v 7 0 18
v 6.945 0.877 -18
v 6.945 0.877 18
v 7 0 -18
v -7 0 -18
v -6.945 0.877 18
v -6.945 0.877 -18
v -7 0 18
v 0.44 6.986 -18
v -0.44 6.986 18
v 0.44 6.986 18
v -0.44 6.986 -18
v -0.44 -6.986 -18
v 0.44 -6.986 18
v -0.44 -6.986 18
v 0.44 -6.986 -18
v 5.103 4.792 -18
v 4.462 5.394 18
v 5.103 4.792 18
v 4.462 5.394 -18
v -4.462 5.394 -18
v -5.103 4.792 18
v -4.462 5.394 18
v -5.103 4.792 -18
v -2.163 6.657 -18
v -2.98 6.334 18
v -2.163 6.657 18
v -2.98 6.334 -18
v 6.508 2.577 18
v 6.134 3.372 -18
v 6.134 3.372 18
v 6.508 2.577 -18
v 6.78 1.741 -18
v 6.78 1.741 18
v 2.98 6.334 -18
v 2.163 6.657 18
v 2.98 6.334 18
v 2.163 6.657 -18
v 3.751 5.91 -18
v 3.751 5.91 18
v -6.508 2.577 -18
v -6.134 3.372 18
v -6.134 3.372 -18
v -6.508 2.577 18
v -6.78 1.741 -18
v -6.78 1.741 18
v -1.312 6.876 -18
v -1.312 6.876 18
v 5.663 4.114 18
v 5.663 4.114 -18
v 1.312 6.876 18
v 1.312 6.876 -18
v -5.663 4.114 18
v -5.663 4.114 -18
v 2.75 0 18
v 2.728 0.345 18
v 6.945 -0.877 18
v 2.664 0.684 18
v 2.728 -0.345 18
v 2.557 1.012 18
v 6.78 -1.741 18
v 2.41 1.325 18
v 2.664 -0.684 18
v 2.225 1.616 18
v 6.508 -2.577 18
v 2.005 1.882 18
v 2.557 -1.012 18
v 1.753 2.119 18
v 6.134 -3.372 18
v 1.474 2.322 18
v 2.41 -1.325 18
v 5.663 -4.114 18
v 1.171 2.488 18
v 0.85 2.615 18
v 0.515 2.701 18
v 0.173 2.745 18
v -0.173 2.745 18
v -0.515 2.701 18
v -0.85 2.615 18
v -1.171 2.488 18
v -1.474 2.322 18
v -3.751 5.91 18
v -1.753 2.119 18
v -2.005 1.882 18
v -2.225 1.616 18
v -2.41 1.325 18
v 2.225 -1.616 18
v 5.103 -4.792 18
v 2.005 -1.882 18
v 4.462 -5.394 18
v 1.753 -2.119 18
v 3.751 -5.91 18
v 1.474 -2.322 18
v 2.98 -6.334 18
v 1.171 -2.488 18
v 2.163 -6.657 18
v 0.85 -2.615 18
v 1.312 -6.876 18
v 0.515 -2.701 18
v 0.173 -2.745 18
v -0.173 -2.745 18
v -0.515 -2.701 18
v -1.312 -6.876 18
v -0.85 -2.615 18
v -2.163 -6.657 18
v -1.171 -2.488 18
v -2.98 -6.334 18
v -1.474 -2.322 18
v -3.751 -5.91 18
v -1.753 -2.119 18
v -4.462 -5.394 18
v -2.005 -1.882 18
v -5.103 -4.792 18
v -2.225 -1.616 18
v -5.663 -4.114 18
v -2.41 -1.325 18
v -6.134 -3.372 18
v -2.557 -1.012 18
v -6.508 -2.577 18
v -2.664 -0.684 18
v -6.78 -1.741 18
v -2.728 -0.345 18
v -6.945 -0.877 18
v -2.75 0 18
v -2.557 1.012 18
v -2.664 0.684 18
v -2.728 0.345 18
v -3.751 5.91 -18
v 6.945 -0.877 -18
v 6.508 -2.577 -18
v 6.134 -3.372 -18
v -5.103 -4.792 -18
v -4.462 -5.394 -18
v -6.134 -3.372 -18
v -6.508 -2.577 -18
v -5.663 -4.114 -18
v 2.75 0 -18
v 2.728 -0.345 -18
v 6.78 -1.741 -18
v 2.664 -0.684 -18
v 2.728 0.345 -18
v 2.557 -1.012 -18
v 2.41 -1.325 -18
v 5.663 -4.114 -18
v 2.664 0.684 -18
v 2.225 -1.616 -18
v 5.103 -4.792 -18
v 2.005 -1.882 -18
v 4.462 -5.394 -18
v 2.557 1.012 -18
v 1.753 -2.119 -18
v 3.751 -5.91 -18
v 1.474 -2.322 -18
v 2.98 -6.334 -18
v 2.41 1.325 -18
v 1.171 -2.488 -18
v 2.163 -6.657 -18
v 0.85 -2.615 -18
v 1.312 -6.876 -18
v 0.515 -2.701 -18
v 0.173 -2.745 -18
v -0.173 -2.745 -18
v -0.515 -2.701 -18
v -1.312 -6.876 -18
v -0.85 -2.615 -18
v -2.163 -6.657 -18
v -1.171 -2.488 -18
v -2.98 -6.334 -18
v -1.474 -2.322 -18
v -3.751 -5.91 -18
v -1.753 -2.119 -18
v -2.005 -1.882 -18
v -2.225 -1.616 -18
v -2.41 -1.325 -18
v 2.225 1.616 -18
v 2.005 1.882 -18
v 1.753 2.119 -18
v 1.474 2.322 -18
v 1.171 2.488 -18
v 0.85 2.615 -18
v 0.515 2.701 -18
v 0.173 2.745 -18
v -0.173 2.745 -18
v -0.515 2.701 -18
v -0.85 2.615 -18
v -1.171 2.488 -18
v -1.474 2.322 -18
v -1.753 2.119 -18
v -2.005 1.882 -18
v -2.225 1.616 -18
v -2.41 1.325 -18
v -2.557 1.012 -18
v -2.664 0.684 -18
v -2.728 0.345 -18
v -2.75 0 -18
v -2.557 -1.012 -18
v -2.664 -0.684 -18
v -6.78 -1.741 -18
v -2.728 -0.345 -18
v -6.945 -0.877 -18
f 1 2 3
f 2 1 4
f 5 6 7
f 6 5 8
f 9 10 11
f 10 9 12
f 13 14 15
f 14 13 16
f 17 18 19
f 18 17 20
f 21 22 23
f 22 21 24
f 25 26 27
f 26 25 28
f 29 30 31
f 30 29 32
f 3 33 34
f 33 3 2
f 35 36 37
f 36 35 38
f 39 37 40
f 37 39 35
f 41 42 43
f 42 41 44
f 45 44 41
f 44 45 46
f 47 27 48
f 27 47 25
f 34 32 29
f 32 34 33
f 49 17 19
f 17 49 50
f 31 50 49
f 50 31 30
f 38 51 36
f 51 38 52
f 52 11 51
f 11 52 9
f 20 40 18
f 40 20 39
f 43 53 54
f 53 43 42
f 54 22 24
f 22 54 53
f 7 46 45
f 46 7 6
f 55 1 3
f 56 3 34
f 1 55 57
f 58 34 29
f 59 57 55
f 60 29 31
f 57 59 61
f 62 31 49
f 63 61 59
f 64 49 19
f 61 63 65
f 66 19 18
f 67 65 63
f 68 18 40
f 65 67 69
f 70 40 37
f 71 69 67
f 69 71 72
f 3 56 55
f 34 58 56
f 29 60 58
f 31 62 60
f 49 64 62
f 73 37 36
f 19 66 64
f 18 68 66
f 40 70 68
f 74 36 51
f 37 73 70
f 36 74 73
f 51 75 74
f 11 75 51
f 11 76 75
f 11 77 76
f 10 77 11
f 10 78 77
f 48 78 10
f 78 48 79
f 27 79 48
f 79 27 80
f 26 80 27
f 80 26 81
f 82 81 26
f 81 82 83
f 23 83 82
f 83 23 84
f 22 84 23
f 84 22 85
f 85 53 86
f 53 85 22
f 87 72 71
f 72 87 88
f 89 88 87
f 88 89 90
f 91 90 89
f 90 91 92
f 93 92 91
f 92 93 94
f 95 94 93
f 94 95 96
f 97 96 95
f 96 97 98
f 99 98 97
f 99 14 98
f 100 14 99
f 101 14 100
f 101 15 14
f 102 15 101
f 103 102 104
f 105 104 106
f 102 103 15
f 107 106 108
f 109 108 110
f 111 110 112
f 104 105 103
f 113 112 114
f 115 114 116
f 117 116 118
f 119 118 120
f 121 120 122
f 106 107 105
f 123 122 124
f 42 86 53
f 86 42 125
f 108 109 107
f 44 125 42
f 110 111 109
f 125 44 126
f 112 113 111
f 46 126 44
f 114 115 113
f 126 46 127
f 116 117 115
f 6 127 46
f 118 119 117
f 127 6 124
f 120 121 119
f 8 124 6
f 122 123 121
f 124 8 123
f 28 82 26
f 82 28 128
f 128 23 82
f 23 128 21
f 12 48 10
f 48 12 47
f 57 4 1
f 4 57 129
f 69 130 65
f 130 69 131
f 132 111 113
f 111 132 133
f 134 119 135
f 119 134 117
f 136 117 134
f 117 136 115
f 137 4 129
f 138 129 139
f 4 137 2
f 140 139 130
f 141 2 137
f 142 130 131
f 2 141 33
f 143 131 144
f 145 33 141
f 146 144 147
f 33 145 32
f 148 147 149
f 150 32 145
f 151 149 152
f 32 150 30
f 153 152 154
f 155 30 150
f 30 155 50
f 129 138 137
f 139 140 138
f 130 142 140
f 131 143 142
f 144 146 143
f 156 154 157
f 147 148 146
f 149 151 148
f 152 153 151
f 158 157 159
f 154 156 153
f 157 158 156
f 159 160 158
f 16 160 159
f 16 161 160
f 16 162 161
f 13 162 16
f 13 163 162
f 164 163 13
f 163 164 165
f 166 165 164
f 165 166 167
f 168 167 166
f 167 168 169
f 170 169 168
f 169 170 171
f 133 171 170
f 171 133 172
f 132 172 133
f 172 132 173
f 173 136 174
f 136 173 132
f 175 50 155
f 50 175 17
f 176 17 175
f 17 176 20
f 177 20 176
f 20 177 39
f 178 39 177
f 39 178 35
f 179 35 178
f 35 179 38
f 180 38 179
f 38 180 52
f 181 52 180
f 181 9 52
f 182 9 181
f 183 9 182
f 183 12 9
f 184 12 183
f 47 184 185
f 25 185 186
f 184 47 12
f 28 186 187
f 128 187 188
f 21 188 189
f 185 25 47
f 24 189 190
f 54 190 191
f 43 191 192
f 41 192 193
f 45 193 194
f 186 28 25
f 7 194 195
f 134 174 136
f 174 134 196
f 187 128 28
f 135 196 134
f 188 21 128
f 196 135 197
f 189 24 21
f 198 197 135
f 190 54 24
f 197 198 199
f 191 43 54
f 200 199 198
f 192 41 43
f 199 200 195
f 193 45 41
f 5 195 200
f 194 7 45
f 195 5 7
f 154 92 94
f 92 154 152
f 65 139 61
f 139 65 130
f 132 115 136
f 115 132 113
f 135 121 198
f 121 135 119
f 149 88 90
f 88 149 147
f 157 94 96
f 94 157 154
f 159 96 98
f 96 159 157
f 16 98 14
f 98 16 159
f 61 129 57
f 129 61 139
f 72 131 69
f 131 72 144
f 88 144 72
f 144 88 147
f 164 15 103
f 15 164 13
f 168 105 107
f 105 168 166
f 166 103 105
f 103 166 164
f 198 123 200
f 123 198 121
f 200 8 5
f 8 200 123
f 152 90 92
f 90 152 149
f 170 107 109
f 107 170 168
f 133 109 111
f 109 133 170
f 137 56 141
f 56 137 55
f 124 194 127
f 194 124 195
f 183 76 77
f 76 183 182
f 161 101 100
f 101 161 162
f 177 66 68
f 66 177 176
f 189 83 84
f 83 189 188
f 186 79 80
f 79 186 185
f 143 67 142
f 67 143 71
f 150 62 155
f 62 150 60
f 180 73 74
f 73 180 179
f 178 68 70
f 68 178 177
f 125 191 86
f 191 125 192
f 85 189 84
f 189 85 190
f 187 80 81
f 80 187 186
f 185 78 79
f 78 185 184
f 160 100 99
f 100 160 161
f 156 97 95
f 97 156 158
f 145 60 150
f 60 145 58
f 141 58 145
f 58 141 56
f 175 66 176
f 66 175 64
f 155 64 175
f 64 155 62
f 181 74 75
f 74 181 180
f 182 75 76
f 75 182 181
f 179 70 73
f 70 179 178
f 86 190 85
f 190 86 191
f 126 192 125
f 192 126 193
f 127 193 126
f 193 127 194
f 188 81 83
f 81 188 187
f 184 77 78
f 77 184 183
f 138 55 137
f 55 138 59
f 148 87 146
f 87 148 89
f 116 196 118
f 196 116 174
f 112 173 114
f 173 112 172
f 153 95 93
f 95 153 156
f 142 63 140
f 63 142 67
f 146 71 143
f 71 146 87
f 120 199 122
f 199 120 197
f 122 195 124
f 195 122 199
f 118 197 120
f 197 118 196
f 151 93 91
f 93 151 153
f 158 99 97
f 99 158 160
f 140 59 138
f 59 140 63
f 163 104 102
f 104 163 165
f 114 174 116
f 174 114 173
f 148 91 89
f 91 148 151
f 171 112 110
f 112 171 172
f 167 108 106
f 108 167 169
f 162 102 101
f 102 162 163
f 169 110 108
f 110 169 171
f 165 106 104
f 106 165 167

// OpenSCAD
$fn = 50;


difference() {
	union() {
		translate(v = [0, 0, -18.0000000000]) {
			cylinder(h = 36, r = 7.0000000000);
		}
	}
	union() {
		translate(v = [0, 0, -100.0000000000]) {
			cylinder(h = 200, r = 2.7500000000);
		}
	}
}
